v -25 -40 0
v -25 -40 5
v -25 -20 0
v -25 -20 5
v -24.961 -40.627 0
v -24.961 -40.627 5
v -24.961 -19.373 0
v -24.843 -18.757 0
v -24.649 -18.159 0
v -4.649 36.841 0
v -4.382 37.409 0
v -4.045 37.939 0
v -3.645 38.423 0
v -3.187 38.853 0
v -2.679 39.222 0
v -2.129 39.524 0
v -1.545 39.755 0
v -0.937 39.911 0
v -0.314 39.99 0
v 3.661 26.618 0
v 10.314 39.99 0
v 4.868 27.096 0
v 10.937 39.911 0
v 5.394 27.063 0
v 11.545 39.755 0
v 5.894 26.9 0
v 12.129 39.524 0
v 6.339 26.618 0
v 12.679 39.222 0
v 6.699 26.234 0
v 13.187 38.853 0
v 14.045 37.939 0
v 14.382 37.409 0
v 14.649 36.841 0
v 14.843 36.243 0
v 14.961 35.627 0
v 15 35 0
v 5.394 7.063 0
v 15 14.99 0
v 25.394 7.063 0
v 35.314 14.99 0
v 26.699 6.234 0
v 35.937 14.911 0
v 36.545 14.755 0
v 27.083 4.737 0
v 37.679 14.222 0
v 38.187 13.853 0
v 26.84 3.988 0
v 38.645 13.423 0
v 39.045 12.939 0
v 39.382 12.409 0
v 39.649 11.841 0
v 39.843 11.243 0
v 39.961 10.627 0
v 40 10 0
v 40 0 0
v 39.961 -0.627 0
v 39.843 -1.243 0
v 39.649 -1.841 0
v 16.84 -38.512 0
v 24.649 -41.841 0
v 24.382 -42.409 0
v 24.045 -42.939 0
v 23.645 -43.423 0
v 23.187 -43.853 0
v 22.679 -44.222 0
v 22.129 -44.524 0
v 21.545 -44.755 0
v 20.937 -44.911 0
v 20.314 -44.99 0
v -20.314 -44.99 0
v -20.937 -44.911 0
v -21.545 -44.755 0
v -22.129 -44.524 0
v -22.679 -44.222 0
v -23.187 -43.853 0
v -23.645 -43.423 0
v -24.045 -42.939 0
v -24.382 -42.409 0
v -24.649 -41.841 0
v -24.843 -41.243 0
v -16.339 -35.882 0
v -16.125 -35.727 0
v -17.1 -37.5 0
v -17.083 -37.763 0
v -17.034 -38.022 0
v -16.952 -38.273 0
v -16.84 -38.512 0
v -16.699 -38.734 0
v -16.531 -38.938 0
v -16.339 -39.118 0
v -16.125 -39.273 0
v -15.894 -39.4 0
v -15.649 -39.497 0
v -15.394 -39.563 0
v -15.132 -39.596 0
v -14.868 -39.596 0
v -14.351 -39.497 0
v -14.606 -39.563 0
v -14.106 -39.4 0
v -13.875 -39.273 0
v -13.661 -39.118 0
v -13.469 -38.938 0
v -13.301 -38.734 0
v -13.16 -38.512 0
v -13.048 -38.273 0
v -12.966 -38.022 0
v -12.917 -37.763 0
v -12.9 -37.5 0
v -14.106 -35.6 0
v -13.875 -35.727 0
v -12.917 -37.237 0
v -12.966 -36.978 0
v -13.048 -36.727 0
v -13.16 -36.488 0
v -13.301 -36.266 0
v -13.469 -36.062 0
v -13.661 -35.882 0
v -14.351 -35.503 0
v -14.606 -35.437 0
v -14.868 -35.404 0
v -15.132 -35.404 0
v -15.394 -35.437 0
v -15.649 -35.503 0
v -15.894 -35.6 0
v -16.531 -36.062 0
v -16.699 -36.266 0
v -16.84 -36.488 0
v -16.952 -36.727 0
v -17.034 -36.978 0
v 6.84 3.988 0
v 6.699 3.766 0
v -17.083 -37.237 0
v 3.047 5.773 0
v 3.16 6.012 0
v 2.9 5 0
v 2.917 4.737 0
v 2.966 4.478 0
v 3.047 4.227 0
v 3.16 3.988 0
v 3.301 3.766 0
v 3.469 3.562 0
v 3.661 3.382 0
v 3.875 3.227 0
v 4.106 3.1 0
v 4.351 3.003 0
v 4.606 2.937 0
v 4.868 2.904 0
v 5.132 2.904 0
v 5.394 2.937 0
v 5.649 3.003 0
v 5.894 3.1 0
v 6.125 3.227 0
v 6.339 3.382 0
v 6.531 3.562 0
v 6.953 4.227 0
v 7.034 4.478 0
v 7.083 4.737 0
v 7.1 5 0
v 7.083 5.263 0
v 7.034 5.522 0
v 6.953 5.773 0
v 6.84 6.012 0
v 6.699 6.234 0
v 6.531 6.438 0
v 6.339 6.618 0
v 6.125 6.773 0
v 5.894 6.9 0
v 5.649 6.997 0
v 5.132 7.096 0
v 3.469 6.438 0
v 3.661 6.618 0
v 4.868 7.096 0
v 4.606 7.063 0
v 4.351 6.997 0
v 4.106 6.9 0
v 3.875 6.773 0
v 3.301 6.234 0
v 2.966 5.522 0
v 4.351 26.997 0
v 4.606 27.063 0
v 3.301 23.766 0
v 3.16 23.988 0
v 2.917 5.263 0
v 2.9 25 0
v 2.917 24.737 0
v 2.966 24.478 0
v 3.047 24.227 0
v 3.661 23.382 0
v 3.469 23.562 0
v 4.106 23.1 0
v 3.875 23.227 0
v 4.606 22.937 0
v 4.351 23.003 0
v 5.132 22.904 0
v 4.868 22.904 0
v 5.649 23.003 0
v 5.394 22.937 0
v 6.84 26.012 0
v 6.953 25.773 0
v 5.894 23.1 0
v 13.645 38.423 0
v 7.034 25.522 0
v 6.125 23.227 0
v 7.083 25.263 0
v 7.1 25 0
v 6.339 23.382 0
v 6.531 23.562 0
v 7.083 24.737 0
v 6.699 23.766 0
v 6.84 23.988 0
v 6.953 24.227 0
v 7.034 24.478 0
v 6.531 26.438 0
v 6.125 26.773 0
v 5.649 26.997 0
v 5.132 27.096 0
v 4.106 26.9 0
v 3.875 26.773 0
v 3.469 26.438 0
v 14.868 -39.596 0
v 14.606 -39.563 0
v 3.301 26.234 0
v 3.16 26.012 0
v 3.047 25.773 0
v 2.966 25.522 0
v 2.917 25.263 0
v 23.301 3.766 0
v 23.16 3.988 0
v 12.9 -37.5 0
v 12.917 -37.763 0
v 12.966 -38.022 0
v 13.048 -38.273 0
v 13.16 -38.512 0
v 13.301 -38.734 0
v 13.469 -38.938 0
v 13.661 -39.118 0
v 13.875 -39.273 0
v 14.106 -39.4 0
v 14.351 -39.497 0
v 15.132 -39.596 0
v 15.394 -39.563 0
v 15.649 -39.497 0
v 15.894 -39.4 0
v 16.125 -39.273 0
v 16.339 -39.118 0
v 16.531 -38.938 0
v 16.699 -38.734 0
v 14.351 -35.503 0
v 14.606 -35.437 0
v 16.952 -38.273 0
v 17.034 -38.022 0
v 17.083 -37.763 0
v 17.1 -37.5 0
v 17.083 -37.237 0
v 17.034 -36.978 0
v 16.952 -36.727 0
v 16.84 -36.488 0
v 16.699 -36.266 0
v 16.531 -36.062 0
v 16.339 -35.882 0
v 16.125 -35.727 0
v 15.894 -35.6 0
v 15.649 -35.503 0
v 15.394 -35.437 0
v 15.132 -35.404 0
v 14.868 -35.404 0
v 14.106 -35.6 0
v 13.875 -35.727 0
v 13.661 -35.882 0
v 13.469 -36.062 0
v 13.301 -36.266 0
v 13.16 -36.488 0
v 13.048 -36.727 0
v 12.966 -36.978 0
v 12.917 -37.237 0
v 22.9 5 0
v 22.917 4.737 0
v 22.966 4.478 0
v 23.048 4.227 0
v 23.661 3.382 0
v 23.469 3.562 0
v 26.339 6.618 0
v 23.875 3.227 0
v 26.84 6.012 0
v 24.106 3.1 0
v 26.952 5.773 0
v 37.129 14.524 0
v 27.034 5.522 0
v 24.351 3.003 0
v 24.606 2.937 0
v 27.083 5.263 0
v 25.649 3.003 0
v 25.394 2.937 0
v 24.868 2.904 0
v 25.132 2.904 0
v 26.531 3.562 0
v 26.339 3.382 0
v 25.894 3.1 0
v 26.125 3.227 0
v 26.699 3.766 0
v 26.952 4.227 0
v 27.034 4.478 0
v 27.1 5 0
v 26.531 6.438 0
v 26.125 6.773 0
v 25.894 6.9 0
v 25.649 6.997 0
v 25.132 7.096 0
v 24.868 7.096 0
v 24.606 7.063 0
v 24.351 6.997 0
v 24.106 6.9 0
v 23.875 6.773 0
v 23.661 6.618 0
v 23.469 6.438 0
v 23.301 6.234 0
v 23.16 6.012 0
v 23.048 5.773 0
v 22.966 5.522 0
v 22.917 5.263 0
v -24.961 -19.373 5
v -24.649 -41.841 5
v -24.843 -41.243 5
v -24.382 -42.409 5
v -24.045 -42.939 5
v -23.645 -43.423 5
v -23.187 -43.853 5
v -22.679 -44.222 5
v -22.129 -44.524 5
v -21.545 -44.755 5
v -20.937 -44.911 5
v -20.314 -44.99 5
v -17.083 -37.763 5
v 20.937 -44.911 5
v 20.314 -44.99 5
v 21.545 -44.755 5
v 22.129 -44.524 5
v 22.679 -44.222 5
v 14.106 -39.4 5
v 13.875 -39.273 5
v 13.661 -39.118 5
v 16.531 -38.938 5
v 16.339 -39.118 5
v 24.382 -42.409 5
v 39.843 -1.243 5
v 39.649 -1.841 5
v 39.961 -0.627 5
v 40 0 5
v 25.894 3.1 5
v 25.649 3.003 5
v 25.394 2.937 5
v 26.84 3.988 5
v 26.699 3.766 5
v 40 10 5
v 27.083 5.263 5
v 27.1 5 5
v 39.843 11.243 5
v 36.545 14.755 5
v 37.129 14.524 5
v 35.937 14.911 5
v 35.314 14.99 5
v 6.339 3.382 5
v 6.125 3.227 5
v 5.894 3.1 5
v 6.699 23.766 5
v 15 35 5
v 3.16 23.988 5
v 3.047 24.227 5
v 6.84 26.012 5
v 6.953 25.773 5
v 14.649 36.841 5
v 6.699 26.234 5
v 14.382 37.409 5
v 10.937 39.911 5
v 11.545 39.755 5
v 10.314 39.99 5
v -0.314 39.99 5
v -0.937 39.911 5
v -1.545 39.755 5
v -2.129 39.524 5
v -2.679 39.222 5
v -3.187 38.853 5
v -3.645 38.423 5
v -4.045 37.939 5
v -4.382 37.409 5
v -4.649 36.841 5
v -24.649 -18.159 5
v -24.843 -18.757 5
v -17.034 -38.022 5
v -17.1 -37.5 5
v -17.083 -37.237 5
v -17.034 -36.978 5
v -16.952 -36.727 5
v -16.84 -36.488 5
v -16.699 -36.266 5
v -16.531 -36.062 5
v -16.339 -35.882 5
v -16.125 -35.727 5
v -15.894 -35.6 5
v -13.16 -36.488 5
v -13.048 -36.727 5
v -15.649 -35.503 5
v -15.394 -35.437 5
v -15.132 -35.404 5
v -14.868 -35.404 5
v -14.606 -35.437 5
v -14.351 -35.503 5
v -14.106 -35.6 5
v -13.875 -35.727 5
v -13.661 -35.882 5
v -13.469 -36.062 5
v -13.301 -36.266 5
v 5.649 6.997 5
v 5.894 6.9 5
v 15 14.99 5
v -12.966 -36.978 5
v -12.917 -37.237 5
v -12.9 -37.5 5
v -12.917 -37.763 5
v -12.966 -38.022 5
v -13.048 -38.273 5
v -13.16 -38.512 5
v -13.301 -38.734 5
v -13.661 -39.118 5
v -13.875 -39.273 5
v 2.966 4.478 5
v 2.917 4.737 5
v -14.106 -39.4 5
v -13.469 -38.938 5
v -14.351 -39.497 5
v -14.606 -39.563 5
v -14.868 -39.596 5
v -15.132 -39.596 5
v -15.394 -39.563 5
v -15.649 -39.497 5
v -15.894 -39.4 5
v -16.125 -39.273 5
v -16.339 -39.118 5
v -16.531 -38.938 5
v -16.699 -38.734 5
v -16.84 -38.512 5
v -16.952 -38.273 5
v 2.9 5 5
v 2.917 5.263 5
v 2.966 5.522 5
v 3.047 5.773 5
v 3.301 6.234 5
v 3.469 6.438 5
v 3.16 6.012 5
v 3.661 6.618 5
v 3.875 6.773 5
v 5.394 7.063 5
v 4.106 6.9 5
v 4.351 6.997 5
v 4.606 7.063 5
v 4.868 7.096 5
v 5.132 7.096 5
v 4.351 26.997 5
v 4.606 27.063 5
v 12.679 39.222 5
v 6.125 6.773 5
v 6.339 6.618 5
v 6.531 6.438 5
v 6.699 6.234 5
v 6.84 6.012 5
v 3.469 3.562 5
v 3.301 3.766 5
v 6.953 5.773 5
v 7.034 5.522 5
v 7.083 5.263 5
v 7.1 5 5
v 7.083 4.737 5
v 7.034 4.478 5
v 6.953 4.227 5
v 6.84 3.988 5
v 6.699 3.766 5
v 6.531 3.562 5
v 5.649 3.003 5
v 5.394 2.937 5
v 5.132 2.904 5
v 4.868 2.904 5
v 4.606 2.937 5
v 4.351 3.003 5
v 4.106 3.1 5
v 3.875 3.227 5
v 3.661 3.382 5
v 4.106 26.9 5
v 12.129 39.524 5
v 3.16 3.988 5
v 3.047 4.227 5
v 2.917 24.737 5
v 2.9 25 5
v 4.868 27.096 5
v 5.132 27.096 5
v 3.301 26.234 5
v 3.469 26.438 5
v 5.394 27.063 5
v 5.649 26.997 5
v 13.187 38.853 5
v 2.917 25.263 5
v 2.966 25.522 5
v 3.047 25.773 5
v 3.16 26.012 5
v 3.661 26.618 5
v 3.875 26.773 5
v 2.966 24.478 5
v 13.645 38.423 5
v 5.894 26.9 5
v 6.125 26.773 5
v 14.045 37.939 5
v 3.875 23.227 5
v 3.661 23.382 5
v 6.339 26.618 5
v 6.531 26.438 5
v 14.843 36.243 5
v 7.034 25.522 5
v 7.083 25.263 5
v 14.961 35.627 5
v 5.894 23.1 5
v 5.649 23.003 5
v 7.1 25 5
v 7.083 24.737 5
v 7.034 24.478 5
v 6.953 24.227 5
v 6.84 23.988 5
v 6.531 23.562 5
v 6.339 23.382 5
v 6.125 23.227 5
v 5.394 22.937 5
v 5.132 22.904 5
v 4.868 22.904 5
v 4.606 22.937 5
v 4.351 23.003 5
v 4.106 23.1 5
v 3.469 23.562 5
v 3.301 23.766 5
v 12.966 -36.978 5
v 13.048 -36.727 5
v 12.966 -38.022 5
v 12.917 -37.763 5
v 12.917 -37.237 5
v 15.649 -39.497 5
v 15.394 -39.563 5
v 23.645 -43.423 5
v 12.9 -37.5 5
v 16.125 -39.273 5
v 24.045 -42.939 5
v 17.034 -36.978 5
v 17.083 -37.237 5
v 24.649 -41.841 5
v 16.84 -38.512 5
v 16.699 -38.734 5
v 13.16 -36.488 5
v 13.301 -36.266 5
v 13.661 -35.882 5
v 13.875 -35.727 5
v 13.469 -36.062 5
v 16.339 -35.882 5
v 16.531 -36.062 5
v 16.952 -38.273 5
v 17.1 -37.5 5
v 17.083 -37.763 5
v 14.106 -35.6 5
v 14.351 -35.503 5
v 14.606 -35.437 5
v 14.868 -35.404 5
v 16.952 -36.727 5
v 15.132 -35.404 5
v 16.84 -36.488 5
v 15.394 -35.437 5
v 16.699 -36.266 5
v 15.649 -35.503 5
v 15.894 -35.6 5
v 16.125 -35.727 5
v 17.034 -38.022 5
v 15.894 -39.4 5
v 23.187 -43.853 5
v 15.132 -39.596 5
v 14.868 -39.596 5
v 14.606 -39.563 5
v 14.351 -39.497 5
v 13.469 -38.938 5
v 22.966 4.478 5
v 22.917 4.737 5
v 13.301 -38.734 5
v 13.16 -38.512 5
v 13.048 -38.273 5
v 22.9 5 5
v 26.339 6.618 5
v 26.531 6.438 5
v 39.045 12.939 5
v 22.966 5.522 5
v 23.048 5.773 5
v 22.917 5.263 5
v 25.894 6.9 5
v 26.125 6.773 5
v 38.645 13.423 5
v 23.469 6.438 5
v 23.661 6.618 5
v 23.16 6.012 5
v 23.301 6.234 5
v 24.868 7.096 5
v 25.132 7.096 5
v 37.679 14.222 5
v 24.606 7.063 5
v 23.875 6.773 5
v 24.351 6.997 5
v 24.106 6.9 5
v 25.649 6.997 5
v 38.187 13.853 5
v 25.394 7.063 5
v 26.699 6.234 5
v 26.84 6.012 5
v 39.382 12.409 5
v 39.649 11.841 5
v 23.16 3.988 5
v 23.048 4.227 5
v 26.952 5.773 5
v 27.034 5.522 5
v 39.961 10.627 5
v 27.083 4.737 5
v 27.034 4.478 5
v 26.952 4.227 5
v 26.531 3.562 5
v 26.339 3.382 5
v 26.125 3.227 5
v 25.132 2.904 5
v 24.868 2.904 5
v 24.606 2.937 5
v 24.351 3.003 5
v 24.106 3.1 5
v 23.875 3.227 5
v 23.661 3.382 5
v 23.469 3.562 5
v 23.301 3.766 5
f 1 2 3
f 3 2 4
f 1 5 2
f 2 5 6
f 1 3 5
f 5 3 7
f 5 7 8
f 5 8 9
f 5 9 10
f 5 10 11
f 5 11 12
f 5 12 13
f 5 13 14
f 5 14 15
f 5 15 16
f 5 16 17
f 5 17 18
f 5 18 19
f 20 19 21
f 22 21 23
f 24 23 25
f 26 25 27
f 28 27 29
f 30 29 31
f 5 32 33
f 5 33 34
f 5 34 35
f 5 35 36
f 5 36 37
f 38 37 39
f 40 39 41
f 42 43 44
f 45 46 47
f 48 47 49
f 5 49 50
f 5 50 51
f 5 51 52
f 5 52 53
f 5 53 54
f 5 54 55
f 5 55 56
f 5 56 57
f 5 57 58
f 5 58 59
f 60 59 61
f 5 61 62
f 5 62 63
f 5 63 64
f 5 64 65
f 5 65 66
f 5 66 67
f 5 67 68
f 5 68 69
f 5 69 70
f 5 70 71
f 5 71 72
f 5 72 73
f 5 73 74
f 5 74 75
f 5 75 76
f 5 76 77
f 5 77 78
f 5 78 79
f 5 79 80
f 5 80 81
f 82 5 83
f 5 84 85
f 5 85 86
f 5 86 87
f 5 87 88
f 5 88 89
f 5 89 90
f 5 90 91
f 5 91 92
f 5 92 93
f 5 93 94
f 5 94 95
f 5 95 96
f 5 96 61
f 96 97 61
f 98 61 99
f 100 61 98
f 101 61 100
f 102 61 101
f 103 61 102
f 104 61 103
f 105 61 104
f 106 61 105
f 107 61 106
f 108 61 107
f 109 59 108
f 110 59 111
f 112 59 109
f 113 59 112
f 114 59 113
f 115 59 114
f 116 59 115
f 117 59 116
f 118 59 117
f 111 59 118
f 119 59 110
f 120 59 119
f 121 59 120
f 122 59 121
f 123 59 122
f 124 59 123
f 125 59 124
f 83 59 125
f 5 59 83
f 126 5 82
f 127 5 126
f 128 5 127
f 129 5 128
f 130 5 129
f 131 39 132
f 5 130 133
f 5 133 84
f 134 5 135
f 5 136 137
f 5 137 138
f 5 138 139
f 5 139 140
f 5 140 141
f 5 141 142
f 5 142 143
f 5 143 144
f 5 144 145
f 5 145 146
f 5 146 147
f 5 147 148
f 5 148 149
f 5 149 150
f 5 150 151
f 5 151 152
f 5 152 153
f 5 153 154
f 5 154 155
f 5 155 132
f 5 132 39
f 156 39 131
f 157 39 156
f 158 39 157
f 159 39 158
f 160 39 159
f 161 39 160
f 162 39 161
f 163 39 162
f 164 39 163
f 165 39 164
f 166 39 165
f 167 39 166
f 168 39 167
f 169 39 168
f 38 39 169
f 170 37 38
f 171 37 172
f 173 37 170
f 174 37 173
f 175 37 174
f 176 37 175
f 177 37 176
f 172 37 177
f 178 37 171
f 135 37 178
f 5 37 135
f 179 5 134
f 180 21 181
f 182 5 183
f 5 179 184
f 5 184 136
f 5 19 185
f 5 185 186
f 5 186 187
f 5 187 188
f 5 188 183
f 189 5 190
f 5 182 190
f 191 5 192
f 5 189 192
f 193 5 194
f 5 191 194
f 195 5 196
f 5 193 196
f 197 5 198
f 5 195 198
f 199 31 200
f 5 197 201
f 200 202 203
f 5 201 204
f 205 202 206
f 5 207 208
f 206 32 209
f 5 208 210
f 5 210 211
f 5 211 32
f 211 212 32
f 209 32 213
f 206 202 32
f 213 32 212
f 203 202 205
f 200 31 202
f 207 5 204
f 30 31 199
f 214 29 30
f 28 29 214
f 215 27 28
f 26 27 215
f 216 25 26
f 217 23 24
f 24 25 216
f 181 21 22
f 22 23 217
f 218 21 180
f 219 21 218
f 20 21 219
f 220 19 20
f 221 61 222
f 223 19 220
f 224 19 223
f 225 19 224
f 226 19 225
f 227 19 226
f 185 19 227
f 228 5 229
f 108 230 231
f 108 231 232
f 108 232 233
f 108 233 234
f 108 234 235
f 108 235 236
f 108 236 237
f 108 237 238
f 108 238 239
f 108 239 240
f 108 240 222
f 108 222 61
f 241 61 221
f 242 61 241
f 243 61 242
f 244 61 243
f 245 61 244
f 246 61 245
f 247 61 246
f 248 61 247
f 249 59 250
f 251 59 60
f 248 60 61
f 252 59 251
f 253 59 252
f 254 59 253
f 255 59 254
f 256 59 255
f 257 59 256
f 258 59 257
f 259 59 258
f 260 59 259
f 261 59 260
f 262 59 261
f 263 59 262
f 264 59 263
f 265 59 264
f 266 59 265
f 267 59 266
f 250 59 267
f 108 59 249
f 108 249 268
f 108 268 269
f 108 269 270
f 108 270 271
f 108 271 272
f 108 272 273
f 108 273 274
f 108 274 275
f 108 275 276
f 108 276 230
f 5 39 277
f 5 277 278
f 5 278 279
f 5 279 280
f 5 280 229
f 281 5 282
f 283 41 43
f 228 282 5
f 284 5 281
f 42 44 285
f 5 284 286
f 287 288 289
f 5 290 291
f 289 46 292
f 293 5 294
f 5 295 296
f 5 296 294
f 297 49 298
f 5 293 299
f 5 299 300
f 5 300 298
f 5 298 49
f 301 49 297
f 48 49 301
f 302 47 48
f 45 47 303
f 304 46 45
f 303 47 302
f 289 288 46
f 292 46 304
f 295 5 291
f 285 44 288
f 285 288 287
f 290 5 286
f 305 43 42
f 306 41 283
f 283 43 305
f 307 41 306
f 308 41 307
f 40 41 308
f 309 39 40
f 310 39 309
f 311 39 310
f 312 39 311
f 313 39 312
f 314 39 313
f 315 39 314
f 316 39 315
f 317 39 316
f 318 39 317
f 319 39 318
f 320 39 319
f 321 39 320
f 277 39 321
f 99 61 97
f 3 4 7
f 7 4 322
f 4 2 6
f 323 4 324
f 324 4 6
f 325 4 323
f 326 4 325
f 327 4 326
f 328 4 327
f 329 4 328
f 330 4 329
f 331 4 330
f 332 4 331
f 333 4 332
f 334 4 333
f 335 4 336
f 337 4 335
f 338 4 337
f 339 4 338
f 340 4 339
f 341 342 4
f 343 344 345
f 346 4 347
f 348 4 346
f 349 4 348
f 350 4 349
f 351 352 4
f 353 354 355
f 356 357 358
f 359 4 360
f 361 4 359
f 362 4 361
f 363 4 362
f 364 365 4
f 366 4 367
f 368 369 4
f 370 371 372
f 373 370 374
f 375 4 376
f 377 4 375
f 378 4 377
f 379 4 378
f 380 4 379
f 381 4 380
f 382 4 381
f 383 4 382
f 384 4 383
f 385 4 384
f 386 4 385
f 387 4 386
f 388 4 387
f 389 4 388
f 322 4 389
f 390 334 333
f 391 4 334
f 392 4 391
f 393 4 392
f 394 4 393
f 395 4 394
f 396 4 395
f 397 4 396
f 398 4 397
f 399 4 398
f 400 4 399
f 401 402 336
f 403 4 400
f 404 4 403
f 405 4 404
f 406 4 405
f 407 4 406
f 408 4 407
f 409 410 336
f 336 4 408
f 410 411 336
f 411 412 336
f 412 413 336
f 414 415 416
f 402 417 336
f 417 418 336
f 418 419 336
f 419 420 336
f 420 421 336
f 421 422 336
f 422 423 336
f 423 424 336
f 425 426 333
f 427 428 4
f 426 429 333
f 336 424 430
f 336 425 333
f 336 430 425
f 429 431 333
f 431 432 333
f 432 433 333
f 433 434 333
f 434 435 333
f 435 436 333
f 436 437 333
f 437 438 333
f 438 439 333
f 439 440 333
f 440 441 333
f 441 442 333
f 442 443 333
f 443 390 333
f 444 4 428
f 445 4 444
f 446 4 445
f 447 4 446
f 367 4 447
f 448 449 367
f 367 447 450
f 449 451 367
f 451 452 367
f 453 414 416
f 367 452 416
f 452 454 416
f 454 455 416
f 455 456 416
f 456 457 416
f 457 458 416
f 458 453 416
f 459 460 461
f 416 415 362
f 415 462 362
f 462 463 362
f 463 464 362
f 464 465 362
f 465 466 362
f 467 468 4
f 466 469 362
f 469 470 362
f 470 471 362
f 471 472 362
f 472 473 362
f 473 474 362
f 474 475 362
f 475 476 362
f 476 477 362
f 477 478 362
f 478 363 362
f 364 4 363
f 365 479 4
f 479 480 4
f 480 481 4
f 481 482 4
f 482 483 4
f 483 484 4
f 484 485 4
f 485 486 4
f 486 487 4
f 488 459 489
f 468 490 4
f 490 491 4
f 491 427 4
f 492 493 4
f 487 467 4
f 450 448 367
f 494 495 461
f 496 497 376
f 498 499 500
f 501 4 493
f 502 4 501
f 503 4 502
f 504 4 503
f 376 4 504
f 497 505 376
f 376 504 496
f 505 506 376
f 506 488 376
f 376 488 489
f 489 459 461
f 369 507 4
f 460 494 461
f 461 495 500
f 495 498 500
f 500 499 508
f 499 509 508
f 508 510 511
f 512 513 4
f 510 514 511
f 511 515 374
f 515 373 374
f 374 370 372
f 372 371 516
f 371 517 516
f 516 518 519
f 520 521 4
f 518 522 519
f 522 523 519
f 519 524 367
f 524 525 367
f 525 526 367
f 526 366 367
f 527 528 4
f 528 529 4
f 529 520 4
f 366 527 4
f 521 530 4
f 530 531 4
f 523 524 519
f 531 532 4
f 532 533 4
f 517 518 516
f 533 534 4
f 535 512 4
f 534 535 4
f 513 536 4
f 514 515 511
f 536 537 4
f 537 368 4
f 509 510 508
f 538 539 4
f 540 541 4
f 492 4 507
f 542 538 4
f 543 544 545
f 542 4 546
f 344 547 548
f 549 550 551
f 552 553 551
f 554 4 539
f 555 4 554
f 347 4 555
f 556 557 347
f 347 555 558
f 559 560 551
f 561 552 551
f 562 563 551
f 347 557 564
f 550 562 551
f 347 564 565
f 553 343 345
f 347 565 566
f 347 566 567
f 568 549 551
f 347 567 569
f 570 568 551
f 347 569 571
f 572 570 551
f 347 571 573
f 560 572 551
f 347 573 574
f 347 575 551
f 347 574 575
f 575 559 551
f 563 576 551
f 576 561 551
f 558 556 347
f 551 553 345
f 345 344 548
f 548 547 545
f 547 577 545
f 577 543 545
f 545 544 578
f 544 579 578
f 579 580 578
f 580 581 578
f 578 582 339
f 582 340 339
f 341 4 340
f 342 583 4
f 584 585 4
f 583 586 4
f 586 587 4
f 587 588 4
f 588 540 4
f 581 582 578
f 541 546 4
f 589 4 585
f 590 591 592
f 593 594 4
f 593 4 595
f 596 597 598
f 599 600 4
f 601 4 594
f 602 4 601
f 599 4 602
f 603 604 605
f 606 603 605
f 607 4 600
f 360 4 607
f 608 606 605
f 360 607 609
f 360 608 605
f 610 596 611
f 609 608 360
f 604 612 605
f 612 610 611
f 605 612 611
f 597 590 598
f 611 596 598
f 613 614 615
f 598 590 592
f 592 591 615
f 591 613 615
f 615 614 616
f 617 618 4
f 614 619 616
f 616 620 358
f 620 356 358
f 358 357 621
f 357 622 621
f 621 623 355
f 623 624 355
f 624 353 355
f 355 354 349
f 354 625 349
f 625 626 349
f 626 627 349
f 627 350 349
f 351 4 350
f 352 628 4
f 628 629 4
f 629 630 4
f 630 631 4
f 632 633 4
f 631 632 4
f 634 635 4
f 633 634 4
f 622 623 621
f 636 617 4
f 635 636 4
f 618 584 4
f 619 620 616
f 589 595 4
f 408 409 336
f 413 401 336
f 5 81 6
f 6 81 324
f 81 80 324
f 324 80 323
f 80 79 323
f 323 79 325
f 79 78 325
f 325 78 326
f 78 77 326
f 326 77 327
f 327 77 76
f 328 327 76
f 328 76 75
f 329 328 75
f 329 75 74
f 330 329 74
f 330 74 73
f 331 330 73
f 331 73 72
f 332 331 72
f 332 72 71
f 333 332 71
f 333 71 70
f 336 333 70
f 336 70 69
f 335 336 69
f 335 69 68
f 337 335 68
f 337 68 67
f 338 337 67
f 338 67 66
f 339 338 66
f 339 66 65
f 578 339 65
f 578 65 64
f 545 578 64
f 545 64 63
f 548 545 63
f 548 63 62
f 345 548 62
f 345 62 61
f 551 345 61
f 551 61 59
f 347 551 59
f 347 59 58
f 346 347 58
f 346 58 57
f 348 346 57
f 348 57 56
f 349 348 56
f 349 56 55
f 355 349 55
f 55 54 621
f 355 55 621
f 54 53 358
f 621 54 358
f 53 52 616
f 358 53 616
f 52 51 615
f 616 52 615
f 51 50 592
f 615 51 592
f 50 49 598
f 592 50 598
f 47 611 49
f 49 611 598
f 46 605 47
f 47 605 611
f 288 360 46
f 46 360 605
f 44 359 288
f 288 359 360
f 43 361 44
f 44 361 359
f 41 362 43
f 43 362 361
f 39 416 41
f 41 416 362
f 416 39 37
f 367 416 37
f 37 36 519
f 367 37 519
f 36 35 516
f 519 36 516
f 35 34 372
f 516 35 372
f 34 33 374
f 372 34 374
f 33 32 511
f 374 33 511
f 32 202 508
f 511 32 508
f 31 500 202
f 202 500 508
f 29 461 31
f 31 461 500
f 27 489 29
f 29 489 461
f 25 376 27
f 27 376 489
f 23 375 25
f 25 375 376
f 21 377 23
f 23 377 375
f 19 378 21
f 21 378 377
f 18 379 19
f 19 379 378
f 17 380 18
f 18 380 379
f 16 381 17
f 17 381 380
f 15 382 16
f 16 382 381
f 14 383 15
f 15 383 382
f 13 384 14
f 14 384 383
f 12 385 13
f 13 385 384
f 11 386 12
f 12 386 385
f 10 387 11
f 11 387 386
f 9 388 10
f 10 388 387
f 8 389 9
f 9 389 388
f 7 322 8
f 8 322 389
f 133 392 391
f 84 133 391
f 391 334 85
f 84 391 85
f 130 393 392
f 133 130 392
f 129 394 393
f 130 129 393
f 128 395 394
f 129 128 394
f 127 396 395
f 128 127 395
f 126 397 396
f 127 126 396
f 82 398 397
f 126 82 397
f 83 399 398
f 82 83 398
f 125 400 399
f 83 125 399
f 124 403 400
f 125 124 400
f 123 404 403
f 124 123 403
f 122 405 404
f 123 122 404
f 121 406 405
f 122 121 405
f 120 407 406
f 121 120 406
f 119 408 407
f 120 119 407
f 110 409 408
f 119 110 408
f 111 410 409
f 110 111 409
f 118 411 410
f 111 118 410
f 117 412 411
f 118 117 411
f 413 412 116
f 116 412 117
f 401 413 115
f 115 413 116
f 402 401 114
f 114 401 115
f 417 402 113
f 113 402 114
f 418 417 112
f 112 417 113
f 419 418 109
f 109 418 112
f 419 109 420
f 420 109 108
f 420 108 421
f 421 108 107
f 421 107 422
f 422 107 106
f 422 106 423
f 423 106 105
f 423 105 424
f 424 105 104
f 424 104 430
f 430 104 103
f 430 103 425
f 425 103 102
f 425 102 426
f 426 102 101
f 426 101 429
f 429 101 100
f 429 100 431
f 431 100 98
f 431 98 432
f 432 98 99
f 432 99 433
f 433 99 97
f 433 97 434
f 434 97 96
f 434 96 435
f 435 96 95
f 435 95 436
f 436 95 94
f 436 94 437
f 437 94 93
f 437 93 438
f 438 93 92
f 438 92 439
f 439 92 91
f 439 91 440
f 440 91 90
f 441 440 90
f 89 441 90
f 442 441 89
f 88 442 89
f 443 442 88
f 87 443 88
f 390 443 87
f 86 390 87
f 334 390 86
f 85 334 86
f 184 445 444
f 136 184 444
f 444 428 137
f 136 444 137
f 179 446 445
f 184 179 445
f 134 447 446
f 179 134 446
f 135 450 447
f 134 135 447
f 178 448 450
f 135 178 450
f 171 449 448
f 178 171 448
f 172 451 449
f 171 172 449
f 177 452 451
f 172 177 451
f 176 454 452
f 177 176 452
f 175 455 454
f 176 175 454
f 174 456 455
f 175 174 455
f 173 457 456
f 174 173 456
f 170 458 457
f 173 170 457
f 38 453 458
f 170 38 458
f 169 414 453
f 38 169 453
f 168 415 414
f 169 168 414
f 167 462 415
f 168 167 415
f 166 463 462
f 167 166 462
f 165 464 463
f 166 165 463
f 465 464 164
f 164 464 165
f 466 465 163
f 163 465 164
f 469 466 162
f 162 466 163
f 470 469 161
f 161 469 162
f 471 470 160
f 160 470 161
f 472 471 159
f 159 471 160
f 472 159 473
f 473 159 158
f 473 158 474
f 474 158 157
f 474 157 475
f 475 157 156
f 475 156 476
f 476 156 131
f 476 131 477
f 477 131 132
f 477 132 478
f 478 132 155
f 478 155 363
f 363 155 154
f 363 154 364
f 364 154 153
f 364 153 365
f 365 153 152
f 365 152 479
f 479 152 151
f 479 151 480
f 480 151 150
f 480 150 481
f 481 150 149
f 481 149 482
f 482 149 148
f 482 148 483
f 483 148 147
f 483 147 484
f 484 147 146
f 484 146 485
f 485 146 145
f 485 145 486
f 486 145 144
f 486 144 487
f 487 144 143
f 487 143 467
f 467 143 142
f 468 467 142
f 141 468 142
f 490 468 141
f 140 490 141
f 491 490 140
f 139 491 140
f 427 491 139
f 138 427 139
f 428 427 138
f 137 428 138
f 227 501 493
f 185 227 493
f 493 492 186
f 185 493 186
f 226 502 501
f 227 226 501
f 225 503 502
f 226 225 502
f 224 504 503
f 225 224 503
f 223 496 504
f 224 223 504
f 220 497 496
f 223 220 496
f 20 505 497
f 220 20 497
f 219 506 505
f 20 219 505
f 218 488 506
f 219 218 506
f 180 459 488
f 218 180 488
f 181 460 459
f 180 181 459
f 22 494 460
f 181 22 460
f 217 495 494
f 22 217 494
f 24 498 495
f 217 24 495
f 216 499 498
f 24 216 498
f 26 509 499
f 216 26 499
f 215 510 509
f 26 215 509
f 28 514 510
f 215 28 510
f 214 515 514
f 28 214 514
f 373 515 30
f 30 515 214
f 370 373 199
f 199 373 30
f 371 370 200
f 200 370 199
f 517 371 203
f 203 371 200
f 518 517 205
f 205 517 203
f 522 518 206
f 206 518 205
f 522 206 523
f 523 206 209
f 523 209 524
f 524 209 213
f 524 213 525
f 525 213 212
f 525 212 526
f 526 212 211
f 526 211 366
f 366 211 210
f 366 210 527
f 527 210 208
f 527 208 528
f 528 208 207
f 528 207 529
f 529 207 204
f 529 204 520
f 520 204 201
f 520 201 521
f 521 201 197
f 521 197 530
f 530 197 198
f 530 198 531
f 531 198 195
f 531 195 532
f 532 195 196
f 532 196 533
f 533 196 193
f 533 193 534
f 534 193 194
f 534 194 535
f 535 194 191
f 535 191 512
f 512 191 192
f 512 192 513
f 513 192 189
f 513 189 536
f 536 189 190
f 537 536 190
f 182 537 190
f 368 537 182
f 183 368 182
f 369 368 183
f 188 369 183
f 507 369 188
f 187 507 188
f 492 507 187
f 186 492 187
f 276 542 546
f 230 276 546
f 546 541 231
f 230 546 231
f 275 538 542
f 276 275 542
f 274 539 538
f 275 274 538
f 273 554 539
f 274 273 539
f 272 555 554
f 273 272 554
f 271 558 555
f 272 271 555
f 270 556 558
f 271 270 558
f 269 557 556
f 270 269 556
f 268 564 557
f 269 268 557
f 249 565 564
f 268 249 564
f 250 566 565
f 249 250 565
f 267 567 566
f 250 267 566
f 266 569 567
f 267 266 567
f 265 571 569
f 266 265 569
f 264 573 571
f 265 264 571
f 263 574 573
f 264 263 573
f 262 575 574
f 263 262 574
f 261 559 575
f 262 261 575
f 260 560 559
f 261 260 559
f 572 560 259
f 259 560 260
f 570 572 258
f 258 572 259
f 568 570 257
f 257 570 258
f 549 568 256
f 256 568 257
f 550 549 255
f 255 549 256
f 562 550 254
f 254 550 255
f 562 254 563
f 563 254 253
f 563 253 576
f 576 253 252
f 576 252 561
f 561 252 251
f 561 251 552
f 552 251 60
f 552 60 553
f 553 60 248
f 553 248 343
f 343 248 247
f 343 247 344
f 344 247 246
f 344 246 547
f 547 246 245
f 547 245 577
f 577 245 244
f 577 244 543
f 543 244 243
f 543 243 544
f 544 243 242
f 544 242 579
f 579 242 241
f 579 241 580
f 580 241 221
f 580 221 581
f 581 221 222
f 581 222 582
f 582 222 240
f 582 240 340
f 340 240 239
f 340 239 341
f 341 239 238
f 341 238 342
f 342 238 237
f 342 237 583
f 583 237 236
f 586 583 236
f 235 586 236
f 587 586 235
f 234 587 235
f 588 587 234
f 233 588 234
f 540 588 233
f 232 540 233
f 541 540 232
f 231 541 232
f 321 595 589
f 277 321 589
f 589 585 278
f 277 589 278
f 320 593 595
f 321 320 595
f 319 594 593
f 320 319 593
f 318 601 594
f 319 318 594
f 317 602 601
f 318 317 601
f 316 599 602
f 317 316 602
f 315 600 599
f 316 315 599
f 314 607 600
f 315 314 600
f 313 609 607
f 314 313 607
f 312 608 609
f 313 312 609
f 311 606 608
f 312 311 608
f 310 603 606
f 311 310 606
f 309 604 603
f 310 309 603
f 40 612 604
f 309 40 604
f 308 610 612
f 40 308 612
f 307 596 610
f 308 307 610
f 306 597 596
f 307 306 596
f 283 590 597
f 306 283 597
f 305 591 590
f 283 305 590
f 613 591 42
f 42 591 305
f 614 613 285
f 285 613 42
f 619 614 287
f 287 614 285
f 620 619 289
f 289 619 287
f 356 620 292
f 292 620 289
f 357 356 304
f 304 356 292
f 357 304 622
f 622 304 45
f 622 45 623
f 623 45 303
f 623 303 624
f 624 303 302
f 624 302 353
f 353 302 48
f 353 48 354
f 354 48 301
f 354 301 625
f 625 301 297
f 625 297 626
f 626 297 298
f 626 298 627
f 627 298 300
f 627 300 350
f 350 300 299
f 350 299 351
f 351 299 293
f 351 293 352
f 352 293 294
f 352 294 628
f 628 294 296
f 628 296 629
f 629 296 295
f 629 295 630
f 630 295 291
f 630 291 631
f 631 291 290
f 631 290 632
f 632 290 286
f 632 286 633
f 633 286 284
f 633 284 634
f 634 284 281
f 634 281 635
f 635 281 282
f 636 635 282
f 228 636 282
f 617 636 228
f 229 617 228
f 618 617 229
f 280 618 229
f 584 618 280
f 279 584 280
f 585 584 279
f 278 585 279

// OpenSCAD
// file: spool_holder.scad
// parametric spool holder
// author Free Beachler for Terawatt Industries

spool_holder(75, 140, 4 + 0.2, 0.01, 1);

module spool_holder(bw, spelev, m4d, o, mirr) {
	if (mirr) {
		mirror([0, 1, 0]) spool_holder_assembly(bw, spelev, m4d, o);
	} else {
		spool_holder_assembly(bw, spelev, m4d, o);
	}
}

module spool_holder_assembly(bw, spelev, m4d, o) {
	translate([-bw / 2, 0, 0]) rotate([90, 0, 0])
	difference() {
		union() {
			spool_holder_base(bw, m4d, o);
			spool_holder_arm(bw, spelev, m4d, o);
		}
		spool_holder_base_screw_holes_positive(bw, m4d, o);
//		spool_holder_gasket_screw_holes_positive(bw, spelev, m4d, o);
		spool_holder_dowel_screw_holes_positive(bw, spelev, m4d, o);
	}
}

module spool_holder_base(bw, m4d, o) {
	cube([bw, 25, 5]);
}

module spool_holder_arm(bw, spelev, m4d, o) {
	translate([(bw - bw * 0.4) / 2, 0, 0]) cube([bw * 0.4, 5, spelev * 0.6]);
	hull() {
		translate([(bw - 5) / 2, 5, 0]) cube([5, 10, spelev]);
		hull() {
			translate([(bw - bw * 0.4) / 2, 0, spelev * 0.6]) cube([bw * 0.4, 5, 30]);
			translate([bw / 2, 5, spelev - o]) rotate([90, 0, 0]) cylinder(r = bw * 0.7 / 2, h = 5, $fn = 50);
		}
	}
}

module spool_holder_base_screw_holes_positive(bw, m4d, o) {
	translate([10, 25 / 2, -o]) cylinder(r = m4d / 2 + + m4d * 0.07, h = 50, $fn = 50);
	translate([bw - 10, 25 / 2, -o]) cylinder(r = m4d / 2 + o, h = 50, $fn = 50);
}

module spool_holder_dowel_screw_holes_positive(bw, spelev, m4d, o) {
	translate([bw / 2, -5, spelev]) {
		// spool dowel holes
		translate([0, 50 - o, -o]) rotate([90, 0, 0]) cylinder(r = 8 / 2 + 8 * 0.1, h = 100, $fn = 50);
		// counterflush
		translate([0, 100 - o, -o]) rotate([90, 0, 0]) cylinder(r = 20 / 2 + 8 * 0.1, h = 90, $fn = 50);
	}
}

module spool_holder_gasket_screw_holes_positive(bw, spelev, m4d, o) {
	translate([bw / 2, 5, spelev]) {
		// gasket attachment holes
		translate([0, 19, 0]) rotate([0, -90, 0]) {
			for (i = [bw * 0.22 + o, -bw * 0.22 - o]) {
				translate([-5, 5 - o, i]) rotate([90, 0, 0]) cylinder(r = m4d / 2 + m4d * 0.07, h = 50, $fn = 50);
			}
			translate([bw * 0.3 * sin(60), 5 - o, 0]) rotate([90, 0, 0]) cylinder(r = m4d / 2 + m4d * 0.07, h = 50, $fn = 50);
			// counterflush
			for (i = [bw * 0.22 + o, -bw * 0.22 - o]) {
				translate([-5, 4.5 - o, i]) rotate([90, 0, 0]) cylinder(r = m4d  + 1 + o, h = 25, $fn = 50);
			}
			translate([bw * 0.3 * sin(60), 4.5 - o, 0]) rotate([90, 0, 0]) cylinder(r = m4d  + 1 + o, h = 25, $fn = 50);
		}
	}
}
// file: spool_holder_base.scad
// parametric spool holder
// author Free Beachler for Terawatt Industries

use <spool_holder.scad>

w = 100;
l = 260;
t = 10;
shd = 75 - 20; 	// screw hole distance = base width - padding of 10*2
slide_len = 180;
m4_diameter = 4 + 0.1;

sheliak_spool_holder_base(w, l, t, shd, slide_len, m4_diameter);
% rotate([90, 0, 0]) translate([w / 2, t, -40]) spool_holder(75, 140, 4, 0.01, 1);
% rotate([90, 0, 0]) translate([w / 2, t, -slide_len - 40]) mirror([0, 0, 1]) spool_holder(75, 140, 4, 0.01, 1);

module sheliak_spool_holder_base(w, l, t, shd, sldlen, m4d) {
	difference() {
		union() {
			cube([w - 15 / 2, l - 15 / 2, t]);
			translate([w - 15 / 2, 0, 0]) cylinder(r = 15, h = t, $fn=50);
			translate([w - 15 / 2, l - 15 / 2, 0]) cylinder(r = 15, h = t, $fn=50);
			translate([0, l - 15 / 2, 0]) cylinder(r = 15, h = t, $fn=50);
			//wings
			translate([w - 15 * 1.5, 15 * 1.75, 0]) mirror([1, 1, 0]) rotate([0, 0, -90]) fancy_wing(15, t);
			translate([w - 15 * 2.25, 15, 0]) rotate([0, 0, -90]) fancy_wing(15, t);
			translate([w - 15 * 1.5, l - 15 * 2.25, 0]) mirror([0, 0, 0]) rotate([0, 0, 0]) fancy_wing(15, t);
			translate([w - 15 * 2.25, l - 15 * 1.5, 0]) rotate([0, 0, 90]) mirror([0, 1, 0]) fancy_wing(15, t);
			translate([15, l - 15 * 2.25, 0]) mirror([1, 0, 0]) rotate([0, 0, 0]) fancy_wing(15, t);
			translate([15 * 1.75, l - 15 * 1.5, 0]) mirror([0, 0, 0]) rotate([0, 0, 90]) fancy_wing(15, t);
			// rounded corner for mnt attachment
			translate([-5, -5, 0]) spool_holder_mnt_attach();
		}
		// base holder screw holes and slots
		translate([0, 50, -0.1]) base_holder_slots_positive(w, l, t + 1, shd, sldlen, m4d);
		translate([w / 2, 28, 0]) base_holder_fixed_screw_holes_positive(w, l, t, shd, sldlen, m4d);
		// feet screw holes
		translate([w - 15 / 2, 0, -0.01]) cylinder(r = m4d / 2, h = t + 1, $fn=50);
		translate([0, l - 15 / 2, -0.01]) cylinder(r = m4d / 2, h = t + 1, $fn=50);
		translate([w - 15 / 2, l - 15 / 2, -0.01]) cylinder(r = m4d / 2, h = t + 1, $fn=50);
		// base attachment screwholes
		translate([-5, -5, 0]) base_attach_screw_holes_positive(w, l, t, shd, sldlen, m4d);
	}
}

module spool_holder_mnt_attach() {
	minkowski() {
		cube([15 * 3 - 10, 15 * 3 - 10, t - 0.01]);
		cylinder(r = 5, h = 0.01, $fn=50);
	}
}

module spool_holder_base(w, l, t, shd, sldlen, m4d) {
	difference() {
		minkowski() {
			difference() {
				cube([w - 5, l - 5, t]);
				//% translate([t * 2 - 1, -1, -0.1]) base_corner_positive(t);
				translate([w - 5 + 1, t * 2 - 1, -0.1]) rotate([0, 0, 90]) base_corner_positive(t);
				translate([w - 5 - t * 2 + 1, l - 5 + 1, -0.1]) rotate([0, 0, 180]) base_corner_positive(t);
				translate([-1, l - 5 - t * 2 + 1, -0.1]) rotate([0, 0, -90]) base_corner_positive(t);
			}
			translate([0, 0, 0]) cylinder(r = 2.5, h = 0.01, $fn=50);
		}
		// base holder screw holes and slots
		translate([0, 50, -0.1]) base_holder_slots_positive(w, l, t + 1, shd, sldlen, m4d);
		// base attachment screwholes
		base_attach_screw_holes_positive(w, l, t, shd, sldlen, m4d);
	}
}

module fancy_wing(r, h) {
	// round corner 1
	translate([0, 0, 0]) 
	difference() { 
		translate([r - 0.01, 0.01, 0.01]) cube([r * 0.5, r, h]);
		intersection() {
			cube([r * 2, r * 2, h + 1]);
			translate([r * 2, 0, 0]) cylinder(r = r, h = h + 1 + 0.02);
		}
		cube([5, 5, 5]);
	}
}

module base_corner_positive(t) {
	rotate([0, 0, 90]) intersection() {
		cube([t * 2, t * 2, t + 1]);
		translate([0, 0, 0]) rotate([0, 0, 45]) cube([t * 4, t * 4, t + 1]);
	}
}

module base_attach_screw_holes_positive(w, l, t, shd, sldlen, m4d) {
		translate([25, 5, -0.01]) cylinder(r = m4d / 2, h = t + 1, $fn=50);
		translate([5, 25, -0.01]) cylinder(r = m4d / 2, h = t + 1, $fn=50);
		translate([5, 5, -0.01]) cylinder(r = m4d / 2, h = t + 1, $fn=50);
}

module base_holder_fixed_screw_holes_positive(w, l, t, shd, sldlen, m4d) {
	translate([-shd / 2, 0, -0.01]) cylinder(r = m4d / 2, h = t + 1, $fn=50);
	translate([shd / 2, 0, -0.01]) cylinder(r = m4d / 2, h = t + 1, $fn=50);
}

module base_holder_slots_positive(w, l, t, shd, sldlen, m4d) {
	translate([w / 2, 0, 0]) {
		translate([-shd / 2 - m4d / 2, 0, 0]) cube([m4d, sldlen, t]);
		translate([shd / 2 - m4d / 2, 0, 0]) cube([m4d, sldlen, t]);
		// round end rail 1
		translate([-shd / 2, 0, -0.01]) cylinder(r = m4d / 2, h = t, $fn=50);
		translate([-shd / 2, sldlen, 0]) cylinder(r = m4d / 2, h = t, $fn=50);
		// round end rail 2
		translate([shd / 2, 0, -0.01]) cylinder(r = m4d / 2, h = t, $fn=50);
		translate([shd / 2, sldlen, 0]) cylinder(r = m4d / 2, h = t, $fn=50);
	}
}
// main file
// parametric spool holder
// author Free Beachler for Terawatt Industries

use <spool_holder_base.scad>

w = 100;
l = 190;
t = 5;
shd = 75 - 20; 	// screw hole distance = base width - padding of 10*2
slide_len = 100;
m4_diameter = 4 + 0.2;

spool_attachment(w, l, t, shd, slide_len, m4_diameter);

module spool_attachment(w, l, t, shd, sldlen, m4d) {
	difference() {
		minkowski() {
			difference() {
				hull() {
					cube([15 * 3 - 10, 15 * 3 - 10, t - 0.01]);
					// extension
					translate([-40 * 0.5, -40, 0]) cube([40, 20, t - 0.01]);
				}
				translate([10, 10, 0]) cube([15 * 3 - 10, 15 * 3 - 10, t - 0.01]);
			}
			cylinder(r = 5, h = 0.01, $fn=50);
		}
		base_attach_screw_holes_positive(w, l, t, shd, sldlen, m4d);
		translate([0, -37.5, 0]) machine_attach_screw_holes_positive(30, t, m4d);
	}
}

module machine_attach_screw_holes_positive(spc, t, m4d) {
	for (x = [-spc * 0.5, spc * 0.5]) {
		translate([x, 0, -0.01]) cylinder(r = m4d / 2, h = t + 1, $fn=50);
	}
}
